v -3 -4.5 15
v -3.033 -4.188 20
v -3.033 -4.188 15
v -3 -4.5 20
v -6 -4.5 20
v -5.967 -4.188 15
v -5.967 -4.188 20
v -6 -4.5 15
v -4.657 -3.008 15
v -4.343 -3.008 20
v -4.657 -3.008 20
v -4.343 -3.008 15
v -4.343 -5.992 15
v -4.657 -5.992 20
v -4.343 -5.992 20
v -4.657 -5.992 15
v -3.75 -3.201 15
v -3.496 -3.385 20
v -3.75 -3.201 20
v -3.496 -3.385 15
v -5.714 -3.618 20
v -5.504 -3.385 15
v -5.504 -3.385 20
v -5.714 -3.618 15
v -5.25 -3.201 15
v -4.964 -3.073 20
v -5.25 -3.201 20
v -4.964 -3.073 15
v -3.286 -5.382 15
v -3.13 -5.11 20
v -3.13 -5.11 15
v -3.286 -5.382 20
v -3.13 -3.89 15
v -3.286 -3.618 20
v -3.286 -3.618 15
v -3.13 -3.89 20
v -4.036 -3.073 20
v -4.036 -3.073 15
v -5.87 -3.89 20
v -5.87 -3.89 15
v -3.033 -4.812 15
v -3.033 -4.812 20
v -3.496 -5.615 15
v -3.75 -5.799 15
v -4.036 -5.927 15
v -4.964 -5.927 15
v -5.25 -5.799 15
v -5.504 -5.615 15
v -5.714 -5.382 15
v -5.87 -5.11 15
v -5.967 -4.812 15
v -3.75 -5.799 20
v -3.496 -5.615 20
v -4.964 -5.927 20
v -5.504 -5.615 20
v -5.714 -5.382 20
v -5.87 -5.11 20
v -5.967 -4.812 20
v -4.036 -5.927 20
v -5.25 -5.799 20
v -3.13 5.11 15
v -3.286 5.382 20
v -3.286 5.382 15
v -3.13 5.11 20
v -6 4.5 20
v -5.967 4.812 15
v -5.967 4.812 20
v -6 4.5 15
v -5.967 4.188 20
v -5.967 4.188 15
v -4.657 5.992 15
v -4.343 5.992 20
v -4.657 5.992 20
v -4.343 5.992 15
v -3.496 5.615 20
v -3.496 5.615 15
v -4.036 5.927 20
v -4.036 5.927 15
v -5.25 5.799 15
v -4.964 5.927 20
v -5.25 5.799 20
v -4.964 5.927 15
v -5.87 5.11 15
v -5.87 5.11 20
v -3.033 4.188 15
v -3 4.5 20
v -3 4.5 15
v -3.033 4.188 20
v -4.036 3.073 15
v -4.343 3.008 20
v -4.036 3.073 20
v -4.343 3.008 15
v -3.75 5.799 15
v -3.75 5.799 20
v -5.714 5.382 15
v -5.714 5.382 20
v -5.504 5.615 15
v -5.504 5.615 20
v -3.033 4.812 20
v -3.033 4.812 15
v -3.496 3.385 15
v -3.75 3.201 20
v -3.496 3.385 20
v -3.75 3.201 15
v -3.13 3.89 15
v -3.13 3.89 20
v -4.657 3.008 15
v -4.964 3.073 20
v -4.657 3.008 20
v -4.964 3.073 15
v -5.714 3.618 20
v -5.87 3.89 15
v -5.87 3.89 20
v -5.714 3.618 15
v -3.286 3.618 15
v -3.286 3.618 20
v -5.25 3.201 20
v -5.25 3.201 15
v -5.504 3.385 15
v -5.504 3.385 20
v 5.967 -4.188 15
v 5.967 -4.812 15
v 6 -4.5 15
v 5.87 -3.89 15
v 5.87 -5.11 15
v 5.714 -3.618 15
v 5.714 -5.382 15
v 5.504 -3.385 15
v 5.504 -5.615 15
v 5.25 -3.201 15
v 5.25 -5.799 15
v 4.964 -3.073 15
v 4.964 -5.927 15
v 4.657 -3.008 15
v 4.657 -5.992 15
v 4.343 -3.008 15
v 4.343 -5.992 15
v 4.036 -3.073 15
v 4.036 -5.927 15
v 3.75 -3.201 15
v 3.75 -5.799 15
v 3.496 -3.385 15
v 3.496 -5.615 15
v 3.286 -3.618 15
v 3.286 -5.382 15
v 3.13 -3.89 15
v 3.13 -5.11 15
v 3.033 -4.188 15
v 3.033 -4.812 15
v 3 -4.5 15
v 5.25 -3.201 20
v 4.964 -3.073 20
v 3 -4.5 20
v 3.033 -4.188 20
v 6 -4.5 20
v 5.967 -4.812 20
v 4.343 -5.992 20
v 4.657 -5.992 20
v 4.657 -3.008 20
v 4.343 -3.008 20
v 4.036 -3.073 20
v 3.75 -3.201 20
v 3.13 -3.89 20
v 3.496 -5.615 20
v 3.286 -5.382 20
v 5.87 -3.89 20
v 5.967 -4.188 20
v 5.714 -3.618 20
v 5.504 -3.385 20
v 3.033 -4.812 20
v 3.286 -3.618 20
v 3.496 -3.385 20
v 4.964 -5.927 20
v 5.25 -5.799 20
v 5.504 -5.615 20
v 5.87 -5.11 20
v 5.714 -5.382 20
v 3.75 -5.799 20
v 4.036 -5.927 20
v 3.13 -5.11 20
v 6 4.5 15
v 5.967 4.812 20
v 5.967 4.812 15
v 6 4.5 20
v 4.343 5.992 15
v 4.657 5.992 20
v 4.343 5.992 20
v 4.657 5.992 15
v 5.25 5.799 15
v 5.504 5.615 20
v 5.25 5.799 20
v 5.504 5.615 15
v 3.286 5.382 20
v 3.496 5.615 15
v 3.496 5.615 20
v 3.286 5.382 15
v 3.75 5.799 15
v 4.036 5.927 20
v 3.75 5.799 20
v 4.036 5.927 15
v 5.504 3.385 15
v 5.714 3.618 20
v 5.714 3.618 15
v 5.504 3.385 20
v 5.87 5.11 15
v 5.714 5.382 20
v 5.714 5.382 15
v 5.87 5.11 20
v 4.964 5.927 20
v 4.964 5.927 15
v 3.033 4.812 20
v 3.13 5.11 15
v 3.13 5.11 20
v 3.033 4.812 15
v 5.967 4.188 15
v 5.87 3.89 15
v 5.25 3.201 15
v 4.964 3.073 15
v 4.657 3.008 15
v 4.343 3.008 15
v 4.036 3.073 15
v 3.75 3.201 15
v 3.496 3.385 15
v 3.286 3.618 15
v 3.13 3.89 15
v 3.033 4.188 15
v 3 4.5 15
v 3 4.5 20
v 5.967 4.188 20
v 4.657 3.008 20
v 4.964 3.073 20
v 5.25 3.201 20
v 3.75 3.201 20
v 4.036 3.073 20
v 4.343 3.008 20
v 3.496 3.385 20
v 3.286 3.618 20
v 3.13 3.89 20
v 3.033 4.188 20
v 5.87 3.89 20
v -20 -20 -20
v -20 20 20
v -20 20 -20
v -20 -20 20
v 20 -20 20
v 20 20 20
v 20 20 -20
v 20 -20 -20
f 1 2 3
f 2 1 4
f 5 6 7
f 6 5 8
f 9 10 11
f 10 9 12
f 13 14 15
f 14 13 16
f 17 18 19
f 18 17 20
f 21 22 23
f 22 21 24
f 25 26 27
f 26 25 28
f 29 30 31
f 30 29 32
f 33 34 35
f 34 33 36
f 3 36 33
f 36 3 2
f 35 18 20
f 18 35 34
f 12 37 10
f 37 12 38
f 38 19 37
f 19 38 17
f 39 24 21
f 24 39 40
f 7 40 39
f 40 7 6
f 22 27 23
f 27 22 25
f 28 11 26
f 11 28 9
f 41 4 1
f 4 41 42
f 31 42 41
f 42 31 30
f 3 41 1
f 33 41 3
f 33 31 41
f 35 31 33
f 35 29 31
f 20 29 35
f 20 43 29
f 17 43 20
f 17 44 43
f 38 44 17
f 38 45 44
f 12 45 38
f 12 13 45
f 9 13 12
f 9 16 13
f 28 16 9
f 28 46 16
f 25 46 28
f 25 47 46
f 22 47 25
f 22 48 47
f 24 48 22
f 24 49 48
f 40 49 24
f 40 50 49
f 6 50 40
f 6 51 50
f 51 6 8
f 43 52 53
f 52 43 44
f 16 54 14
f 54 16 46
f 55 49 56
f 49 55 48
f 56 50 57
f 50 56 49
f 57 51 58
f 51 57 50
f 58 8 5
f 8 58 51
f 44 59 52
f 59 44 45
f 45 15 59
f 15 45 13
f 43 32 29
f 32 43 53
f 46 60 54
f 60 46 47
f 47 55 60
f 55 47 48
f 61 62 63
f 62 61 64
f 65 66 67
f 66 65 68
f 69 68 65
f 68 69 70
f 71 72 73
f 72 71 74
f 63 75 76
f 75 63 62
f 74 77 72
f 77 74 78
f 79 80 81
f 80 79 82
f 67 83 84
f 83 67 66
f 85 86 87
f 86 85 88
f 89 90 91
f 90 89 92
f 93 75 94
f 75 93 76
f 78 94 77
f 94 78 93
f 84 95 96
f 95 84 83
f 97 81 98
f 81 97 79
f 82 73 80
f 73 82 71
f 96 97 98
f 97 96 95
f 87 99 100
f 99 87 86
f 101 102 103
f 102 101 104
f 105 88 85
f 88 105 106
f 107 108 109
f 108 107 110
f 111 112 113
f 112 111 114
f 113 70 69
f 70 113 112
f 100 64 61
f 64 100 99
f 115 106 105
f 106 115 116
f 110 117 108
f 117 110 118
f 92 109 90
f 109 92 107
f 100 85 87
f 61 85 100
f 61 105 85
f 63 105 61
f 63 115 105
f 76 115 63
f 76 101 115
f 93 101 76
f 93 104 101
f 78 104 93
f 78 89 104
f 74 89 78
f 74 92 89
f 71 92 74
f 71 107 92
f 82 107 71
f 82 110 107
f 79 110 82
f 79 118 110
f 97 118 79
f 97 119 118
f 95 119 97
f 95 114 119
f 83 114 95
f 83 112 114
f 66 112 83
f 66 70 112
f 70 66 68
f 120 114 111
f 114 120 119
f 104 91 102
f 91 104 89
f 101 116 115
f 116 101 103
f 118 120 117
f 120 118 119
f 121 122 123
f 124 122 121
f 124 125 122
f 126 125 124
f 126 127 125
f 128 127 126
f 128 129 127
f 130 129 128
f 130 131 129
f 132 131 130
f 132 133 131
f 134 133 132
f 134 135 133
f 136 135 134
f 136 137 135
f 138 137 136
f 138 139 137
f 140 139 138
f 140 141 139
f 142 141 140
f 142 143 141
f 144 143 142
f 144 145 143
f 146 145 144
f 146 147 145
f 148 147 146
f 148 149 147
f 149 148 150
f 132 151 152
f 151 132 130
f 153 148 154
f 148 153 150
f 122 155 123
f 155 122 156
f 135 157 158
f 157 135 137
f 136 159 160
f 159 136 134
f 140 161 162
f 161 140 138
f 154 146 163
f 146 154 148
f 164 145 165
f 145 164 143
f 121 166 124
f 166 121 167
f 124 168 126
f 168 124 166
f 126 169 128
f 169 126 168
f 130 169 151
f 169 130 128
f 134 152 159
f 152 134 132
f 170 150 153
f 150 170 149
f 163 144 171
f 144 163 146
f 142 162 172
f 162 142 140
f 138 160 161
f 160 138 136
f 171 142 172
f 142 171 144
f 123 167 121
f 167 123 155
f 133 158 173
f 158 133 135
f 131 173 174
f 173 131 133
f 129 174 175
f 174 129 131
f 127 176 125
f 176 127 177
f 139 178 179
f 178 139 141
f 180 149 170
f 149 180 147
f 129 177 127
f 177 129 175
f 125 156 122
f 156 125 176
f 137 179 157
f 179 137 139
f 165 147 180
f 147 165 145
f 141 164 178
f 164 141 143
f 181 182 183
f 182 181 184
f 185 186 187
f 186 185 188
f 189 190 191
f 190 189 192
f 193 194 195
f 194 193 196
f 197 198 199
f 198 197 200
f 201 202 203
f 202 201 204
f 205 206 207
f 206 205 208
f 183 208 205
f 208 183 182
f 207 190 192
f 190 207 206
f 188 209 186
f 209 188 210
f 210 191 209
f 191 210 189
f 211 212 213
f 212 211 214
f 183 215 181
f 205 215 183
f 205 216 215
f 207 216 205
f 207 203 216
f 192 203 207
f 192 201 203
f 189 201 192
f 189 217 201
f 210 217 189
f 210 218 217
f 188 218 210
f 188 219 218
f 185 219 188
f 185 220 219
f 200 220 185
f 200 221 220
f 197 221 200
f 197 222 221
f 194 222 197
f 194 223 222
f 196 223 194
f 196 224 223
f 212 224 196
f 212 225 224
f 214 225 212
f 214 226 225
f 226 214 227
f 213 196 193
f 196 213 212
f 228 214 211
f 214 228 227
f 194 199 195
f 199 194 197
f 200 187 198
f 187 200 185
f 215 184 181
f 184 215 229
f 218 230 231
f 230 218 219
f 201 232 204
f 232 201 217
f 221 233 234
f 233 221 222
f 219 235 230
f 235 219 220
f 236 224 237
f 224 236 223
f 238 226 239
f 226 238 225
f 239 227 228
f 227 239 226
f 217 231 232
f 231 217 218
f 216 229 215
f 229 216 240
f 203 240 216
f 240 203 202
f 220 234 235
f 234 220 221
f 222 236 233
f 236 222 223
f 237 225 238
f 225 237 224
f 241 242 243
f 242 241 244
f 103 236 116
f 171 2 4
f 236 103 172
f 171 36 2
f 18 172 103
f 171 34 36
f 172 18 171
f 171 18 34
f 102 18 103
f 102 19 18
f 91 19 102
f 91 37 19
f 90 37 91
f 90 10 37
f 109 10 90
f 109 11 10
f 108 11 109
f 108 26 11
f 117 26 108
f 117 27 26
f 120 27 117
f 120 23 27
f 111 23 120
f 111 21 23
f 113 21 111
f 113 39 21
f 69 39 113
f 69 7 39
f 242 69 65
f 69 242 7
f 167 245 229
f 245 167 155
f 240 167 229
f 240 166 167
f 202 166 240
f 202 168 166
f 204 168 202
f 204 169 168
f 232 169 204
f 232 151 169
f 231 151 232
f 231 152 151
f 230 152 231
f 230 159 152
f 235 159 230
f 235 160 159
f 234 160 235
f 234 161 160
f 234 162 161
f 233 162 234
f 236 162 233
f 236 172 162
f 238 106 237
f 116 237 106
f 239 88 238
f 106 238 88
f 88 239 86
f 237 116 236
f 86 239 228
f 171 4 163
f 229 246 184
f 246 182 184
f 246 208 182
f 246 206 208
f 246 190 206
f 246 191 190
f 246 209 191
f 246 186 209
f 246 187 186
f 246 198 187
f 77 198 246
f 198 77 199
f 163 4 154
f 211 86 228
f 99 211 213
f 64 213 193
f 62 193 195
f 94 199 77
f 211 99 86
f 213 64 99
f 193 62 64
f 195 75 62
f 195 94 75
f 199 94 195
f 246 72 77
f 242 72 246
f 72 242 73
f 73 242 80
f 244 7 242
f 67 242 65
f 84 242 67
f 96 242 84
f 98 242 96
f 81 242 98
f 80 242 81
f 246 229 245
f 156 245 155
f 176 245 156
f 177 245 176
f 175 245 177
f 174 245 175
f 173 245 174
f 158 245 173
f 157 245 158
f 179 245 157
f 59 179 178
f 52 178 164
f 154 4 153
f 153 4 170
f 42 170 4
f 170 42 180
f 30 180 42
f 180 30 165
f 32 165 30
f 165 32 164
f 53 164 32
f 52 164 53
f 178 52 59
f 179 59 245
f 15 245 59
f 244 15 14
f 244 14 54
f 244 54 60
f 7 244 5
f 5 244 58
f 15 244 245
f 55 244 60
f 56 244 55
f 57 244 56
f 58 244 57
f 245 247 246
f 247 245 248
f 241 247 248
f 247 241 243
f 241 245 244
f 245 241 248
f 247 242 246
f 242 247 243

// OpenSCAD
$fn=30;
difference() {
    cube([40,40,40], center=true);
    for (i = [-4.5,4.5]) {
        for (j= [-4.5, 4.5]) {
            translate([i,j,15]) cylinder(d=3.0, h=10);
        }
    }
}
